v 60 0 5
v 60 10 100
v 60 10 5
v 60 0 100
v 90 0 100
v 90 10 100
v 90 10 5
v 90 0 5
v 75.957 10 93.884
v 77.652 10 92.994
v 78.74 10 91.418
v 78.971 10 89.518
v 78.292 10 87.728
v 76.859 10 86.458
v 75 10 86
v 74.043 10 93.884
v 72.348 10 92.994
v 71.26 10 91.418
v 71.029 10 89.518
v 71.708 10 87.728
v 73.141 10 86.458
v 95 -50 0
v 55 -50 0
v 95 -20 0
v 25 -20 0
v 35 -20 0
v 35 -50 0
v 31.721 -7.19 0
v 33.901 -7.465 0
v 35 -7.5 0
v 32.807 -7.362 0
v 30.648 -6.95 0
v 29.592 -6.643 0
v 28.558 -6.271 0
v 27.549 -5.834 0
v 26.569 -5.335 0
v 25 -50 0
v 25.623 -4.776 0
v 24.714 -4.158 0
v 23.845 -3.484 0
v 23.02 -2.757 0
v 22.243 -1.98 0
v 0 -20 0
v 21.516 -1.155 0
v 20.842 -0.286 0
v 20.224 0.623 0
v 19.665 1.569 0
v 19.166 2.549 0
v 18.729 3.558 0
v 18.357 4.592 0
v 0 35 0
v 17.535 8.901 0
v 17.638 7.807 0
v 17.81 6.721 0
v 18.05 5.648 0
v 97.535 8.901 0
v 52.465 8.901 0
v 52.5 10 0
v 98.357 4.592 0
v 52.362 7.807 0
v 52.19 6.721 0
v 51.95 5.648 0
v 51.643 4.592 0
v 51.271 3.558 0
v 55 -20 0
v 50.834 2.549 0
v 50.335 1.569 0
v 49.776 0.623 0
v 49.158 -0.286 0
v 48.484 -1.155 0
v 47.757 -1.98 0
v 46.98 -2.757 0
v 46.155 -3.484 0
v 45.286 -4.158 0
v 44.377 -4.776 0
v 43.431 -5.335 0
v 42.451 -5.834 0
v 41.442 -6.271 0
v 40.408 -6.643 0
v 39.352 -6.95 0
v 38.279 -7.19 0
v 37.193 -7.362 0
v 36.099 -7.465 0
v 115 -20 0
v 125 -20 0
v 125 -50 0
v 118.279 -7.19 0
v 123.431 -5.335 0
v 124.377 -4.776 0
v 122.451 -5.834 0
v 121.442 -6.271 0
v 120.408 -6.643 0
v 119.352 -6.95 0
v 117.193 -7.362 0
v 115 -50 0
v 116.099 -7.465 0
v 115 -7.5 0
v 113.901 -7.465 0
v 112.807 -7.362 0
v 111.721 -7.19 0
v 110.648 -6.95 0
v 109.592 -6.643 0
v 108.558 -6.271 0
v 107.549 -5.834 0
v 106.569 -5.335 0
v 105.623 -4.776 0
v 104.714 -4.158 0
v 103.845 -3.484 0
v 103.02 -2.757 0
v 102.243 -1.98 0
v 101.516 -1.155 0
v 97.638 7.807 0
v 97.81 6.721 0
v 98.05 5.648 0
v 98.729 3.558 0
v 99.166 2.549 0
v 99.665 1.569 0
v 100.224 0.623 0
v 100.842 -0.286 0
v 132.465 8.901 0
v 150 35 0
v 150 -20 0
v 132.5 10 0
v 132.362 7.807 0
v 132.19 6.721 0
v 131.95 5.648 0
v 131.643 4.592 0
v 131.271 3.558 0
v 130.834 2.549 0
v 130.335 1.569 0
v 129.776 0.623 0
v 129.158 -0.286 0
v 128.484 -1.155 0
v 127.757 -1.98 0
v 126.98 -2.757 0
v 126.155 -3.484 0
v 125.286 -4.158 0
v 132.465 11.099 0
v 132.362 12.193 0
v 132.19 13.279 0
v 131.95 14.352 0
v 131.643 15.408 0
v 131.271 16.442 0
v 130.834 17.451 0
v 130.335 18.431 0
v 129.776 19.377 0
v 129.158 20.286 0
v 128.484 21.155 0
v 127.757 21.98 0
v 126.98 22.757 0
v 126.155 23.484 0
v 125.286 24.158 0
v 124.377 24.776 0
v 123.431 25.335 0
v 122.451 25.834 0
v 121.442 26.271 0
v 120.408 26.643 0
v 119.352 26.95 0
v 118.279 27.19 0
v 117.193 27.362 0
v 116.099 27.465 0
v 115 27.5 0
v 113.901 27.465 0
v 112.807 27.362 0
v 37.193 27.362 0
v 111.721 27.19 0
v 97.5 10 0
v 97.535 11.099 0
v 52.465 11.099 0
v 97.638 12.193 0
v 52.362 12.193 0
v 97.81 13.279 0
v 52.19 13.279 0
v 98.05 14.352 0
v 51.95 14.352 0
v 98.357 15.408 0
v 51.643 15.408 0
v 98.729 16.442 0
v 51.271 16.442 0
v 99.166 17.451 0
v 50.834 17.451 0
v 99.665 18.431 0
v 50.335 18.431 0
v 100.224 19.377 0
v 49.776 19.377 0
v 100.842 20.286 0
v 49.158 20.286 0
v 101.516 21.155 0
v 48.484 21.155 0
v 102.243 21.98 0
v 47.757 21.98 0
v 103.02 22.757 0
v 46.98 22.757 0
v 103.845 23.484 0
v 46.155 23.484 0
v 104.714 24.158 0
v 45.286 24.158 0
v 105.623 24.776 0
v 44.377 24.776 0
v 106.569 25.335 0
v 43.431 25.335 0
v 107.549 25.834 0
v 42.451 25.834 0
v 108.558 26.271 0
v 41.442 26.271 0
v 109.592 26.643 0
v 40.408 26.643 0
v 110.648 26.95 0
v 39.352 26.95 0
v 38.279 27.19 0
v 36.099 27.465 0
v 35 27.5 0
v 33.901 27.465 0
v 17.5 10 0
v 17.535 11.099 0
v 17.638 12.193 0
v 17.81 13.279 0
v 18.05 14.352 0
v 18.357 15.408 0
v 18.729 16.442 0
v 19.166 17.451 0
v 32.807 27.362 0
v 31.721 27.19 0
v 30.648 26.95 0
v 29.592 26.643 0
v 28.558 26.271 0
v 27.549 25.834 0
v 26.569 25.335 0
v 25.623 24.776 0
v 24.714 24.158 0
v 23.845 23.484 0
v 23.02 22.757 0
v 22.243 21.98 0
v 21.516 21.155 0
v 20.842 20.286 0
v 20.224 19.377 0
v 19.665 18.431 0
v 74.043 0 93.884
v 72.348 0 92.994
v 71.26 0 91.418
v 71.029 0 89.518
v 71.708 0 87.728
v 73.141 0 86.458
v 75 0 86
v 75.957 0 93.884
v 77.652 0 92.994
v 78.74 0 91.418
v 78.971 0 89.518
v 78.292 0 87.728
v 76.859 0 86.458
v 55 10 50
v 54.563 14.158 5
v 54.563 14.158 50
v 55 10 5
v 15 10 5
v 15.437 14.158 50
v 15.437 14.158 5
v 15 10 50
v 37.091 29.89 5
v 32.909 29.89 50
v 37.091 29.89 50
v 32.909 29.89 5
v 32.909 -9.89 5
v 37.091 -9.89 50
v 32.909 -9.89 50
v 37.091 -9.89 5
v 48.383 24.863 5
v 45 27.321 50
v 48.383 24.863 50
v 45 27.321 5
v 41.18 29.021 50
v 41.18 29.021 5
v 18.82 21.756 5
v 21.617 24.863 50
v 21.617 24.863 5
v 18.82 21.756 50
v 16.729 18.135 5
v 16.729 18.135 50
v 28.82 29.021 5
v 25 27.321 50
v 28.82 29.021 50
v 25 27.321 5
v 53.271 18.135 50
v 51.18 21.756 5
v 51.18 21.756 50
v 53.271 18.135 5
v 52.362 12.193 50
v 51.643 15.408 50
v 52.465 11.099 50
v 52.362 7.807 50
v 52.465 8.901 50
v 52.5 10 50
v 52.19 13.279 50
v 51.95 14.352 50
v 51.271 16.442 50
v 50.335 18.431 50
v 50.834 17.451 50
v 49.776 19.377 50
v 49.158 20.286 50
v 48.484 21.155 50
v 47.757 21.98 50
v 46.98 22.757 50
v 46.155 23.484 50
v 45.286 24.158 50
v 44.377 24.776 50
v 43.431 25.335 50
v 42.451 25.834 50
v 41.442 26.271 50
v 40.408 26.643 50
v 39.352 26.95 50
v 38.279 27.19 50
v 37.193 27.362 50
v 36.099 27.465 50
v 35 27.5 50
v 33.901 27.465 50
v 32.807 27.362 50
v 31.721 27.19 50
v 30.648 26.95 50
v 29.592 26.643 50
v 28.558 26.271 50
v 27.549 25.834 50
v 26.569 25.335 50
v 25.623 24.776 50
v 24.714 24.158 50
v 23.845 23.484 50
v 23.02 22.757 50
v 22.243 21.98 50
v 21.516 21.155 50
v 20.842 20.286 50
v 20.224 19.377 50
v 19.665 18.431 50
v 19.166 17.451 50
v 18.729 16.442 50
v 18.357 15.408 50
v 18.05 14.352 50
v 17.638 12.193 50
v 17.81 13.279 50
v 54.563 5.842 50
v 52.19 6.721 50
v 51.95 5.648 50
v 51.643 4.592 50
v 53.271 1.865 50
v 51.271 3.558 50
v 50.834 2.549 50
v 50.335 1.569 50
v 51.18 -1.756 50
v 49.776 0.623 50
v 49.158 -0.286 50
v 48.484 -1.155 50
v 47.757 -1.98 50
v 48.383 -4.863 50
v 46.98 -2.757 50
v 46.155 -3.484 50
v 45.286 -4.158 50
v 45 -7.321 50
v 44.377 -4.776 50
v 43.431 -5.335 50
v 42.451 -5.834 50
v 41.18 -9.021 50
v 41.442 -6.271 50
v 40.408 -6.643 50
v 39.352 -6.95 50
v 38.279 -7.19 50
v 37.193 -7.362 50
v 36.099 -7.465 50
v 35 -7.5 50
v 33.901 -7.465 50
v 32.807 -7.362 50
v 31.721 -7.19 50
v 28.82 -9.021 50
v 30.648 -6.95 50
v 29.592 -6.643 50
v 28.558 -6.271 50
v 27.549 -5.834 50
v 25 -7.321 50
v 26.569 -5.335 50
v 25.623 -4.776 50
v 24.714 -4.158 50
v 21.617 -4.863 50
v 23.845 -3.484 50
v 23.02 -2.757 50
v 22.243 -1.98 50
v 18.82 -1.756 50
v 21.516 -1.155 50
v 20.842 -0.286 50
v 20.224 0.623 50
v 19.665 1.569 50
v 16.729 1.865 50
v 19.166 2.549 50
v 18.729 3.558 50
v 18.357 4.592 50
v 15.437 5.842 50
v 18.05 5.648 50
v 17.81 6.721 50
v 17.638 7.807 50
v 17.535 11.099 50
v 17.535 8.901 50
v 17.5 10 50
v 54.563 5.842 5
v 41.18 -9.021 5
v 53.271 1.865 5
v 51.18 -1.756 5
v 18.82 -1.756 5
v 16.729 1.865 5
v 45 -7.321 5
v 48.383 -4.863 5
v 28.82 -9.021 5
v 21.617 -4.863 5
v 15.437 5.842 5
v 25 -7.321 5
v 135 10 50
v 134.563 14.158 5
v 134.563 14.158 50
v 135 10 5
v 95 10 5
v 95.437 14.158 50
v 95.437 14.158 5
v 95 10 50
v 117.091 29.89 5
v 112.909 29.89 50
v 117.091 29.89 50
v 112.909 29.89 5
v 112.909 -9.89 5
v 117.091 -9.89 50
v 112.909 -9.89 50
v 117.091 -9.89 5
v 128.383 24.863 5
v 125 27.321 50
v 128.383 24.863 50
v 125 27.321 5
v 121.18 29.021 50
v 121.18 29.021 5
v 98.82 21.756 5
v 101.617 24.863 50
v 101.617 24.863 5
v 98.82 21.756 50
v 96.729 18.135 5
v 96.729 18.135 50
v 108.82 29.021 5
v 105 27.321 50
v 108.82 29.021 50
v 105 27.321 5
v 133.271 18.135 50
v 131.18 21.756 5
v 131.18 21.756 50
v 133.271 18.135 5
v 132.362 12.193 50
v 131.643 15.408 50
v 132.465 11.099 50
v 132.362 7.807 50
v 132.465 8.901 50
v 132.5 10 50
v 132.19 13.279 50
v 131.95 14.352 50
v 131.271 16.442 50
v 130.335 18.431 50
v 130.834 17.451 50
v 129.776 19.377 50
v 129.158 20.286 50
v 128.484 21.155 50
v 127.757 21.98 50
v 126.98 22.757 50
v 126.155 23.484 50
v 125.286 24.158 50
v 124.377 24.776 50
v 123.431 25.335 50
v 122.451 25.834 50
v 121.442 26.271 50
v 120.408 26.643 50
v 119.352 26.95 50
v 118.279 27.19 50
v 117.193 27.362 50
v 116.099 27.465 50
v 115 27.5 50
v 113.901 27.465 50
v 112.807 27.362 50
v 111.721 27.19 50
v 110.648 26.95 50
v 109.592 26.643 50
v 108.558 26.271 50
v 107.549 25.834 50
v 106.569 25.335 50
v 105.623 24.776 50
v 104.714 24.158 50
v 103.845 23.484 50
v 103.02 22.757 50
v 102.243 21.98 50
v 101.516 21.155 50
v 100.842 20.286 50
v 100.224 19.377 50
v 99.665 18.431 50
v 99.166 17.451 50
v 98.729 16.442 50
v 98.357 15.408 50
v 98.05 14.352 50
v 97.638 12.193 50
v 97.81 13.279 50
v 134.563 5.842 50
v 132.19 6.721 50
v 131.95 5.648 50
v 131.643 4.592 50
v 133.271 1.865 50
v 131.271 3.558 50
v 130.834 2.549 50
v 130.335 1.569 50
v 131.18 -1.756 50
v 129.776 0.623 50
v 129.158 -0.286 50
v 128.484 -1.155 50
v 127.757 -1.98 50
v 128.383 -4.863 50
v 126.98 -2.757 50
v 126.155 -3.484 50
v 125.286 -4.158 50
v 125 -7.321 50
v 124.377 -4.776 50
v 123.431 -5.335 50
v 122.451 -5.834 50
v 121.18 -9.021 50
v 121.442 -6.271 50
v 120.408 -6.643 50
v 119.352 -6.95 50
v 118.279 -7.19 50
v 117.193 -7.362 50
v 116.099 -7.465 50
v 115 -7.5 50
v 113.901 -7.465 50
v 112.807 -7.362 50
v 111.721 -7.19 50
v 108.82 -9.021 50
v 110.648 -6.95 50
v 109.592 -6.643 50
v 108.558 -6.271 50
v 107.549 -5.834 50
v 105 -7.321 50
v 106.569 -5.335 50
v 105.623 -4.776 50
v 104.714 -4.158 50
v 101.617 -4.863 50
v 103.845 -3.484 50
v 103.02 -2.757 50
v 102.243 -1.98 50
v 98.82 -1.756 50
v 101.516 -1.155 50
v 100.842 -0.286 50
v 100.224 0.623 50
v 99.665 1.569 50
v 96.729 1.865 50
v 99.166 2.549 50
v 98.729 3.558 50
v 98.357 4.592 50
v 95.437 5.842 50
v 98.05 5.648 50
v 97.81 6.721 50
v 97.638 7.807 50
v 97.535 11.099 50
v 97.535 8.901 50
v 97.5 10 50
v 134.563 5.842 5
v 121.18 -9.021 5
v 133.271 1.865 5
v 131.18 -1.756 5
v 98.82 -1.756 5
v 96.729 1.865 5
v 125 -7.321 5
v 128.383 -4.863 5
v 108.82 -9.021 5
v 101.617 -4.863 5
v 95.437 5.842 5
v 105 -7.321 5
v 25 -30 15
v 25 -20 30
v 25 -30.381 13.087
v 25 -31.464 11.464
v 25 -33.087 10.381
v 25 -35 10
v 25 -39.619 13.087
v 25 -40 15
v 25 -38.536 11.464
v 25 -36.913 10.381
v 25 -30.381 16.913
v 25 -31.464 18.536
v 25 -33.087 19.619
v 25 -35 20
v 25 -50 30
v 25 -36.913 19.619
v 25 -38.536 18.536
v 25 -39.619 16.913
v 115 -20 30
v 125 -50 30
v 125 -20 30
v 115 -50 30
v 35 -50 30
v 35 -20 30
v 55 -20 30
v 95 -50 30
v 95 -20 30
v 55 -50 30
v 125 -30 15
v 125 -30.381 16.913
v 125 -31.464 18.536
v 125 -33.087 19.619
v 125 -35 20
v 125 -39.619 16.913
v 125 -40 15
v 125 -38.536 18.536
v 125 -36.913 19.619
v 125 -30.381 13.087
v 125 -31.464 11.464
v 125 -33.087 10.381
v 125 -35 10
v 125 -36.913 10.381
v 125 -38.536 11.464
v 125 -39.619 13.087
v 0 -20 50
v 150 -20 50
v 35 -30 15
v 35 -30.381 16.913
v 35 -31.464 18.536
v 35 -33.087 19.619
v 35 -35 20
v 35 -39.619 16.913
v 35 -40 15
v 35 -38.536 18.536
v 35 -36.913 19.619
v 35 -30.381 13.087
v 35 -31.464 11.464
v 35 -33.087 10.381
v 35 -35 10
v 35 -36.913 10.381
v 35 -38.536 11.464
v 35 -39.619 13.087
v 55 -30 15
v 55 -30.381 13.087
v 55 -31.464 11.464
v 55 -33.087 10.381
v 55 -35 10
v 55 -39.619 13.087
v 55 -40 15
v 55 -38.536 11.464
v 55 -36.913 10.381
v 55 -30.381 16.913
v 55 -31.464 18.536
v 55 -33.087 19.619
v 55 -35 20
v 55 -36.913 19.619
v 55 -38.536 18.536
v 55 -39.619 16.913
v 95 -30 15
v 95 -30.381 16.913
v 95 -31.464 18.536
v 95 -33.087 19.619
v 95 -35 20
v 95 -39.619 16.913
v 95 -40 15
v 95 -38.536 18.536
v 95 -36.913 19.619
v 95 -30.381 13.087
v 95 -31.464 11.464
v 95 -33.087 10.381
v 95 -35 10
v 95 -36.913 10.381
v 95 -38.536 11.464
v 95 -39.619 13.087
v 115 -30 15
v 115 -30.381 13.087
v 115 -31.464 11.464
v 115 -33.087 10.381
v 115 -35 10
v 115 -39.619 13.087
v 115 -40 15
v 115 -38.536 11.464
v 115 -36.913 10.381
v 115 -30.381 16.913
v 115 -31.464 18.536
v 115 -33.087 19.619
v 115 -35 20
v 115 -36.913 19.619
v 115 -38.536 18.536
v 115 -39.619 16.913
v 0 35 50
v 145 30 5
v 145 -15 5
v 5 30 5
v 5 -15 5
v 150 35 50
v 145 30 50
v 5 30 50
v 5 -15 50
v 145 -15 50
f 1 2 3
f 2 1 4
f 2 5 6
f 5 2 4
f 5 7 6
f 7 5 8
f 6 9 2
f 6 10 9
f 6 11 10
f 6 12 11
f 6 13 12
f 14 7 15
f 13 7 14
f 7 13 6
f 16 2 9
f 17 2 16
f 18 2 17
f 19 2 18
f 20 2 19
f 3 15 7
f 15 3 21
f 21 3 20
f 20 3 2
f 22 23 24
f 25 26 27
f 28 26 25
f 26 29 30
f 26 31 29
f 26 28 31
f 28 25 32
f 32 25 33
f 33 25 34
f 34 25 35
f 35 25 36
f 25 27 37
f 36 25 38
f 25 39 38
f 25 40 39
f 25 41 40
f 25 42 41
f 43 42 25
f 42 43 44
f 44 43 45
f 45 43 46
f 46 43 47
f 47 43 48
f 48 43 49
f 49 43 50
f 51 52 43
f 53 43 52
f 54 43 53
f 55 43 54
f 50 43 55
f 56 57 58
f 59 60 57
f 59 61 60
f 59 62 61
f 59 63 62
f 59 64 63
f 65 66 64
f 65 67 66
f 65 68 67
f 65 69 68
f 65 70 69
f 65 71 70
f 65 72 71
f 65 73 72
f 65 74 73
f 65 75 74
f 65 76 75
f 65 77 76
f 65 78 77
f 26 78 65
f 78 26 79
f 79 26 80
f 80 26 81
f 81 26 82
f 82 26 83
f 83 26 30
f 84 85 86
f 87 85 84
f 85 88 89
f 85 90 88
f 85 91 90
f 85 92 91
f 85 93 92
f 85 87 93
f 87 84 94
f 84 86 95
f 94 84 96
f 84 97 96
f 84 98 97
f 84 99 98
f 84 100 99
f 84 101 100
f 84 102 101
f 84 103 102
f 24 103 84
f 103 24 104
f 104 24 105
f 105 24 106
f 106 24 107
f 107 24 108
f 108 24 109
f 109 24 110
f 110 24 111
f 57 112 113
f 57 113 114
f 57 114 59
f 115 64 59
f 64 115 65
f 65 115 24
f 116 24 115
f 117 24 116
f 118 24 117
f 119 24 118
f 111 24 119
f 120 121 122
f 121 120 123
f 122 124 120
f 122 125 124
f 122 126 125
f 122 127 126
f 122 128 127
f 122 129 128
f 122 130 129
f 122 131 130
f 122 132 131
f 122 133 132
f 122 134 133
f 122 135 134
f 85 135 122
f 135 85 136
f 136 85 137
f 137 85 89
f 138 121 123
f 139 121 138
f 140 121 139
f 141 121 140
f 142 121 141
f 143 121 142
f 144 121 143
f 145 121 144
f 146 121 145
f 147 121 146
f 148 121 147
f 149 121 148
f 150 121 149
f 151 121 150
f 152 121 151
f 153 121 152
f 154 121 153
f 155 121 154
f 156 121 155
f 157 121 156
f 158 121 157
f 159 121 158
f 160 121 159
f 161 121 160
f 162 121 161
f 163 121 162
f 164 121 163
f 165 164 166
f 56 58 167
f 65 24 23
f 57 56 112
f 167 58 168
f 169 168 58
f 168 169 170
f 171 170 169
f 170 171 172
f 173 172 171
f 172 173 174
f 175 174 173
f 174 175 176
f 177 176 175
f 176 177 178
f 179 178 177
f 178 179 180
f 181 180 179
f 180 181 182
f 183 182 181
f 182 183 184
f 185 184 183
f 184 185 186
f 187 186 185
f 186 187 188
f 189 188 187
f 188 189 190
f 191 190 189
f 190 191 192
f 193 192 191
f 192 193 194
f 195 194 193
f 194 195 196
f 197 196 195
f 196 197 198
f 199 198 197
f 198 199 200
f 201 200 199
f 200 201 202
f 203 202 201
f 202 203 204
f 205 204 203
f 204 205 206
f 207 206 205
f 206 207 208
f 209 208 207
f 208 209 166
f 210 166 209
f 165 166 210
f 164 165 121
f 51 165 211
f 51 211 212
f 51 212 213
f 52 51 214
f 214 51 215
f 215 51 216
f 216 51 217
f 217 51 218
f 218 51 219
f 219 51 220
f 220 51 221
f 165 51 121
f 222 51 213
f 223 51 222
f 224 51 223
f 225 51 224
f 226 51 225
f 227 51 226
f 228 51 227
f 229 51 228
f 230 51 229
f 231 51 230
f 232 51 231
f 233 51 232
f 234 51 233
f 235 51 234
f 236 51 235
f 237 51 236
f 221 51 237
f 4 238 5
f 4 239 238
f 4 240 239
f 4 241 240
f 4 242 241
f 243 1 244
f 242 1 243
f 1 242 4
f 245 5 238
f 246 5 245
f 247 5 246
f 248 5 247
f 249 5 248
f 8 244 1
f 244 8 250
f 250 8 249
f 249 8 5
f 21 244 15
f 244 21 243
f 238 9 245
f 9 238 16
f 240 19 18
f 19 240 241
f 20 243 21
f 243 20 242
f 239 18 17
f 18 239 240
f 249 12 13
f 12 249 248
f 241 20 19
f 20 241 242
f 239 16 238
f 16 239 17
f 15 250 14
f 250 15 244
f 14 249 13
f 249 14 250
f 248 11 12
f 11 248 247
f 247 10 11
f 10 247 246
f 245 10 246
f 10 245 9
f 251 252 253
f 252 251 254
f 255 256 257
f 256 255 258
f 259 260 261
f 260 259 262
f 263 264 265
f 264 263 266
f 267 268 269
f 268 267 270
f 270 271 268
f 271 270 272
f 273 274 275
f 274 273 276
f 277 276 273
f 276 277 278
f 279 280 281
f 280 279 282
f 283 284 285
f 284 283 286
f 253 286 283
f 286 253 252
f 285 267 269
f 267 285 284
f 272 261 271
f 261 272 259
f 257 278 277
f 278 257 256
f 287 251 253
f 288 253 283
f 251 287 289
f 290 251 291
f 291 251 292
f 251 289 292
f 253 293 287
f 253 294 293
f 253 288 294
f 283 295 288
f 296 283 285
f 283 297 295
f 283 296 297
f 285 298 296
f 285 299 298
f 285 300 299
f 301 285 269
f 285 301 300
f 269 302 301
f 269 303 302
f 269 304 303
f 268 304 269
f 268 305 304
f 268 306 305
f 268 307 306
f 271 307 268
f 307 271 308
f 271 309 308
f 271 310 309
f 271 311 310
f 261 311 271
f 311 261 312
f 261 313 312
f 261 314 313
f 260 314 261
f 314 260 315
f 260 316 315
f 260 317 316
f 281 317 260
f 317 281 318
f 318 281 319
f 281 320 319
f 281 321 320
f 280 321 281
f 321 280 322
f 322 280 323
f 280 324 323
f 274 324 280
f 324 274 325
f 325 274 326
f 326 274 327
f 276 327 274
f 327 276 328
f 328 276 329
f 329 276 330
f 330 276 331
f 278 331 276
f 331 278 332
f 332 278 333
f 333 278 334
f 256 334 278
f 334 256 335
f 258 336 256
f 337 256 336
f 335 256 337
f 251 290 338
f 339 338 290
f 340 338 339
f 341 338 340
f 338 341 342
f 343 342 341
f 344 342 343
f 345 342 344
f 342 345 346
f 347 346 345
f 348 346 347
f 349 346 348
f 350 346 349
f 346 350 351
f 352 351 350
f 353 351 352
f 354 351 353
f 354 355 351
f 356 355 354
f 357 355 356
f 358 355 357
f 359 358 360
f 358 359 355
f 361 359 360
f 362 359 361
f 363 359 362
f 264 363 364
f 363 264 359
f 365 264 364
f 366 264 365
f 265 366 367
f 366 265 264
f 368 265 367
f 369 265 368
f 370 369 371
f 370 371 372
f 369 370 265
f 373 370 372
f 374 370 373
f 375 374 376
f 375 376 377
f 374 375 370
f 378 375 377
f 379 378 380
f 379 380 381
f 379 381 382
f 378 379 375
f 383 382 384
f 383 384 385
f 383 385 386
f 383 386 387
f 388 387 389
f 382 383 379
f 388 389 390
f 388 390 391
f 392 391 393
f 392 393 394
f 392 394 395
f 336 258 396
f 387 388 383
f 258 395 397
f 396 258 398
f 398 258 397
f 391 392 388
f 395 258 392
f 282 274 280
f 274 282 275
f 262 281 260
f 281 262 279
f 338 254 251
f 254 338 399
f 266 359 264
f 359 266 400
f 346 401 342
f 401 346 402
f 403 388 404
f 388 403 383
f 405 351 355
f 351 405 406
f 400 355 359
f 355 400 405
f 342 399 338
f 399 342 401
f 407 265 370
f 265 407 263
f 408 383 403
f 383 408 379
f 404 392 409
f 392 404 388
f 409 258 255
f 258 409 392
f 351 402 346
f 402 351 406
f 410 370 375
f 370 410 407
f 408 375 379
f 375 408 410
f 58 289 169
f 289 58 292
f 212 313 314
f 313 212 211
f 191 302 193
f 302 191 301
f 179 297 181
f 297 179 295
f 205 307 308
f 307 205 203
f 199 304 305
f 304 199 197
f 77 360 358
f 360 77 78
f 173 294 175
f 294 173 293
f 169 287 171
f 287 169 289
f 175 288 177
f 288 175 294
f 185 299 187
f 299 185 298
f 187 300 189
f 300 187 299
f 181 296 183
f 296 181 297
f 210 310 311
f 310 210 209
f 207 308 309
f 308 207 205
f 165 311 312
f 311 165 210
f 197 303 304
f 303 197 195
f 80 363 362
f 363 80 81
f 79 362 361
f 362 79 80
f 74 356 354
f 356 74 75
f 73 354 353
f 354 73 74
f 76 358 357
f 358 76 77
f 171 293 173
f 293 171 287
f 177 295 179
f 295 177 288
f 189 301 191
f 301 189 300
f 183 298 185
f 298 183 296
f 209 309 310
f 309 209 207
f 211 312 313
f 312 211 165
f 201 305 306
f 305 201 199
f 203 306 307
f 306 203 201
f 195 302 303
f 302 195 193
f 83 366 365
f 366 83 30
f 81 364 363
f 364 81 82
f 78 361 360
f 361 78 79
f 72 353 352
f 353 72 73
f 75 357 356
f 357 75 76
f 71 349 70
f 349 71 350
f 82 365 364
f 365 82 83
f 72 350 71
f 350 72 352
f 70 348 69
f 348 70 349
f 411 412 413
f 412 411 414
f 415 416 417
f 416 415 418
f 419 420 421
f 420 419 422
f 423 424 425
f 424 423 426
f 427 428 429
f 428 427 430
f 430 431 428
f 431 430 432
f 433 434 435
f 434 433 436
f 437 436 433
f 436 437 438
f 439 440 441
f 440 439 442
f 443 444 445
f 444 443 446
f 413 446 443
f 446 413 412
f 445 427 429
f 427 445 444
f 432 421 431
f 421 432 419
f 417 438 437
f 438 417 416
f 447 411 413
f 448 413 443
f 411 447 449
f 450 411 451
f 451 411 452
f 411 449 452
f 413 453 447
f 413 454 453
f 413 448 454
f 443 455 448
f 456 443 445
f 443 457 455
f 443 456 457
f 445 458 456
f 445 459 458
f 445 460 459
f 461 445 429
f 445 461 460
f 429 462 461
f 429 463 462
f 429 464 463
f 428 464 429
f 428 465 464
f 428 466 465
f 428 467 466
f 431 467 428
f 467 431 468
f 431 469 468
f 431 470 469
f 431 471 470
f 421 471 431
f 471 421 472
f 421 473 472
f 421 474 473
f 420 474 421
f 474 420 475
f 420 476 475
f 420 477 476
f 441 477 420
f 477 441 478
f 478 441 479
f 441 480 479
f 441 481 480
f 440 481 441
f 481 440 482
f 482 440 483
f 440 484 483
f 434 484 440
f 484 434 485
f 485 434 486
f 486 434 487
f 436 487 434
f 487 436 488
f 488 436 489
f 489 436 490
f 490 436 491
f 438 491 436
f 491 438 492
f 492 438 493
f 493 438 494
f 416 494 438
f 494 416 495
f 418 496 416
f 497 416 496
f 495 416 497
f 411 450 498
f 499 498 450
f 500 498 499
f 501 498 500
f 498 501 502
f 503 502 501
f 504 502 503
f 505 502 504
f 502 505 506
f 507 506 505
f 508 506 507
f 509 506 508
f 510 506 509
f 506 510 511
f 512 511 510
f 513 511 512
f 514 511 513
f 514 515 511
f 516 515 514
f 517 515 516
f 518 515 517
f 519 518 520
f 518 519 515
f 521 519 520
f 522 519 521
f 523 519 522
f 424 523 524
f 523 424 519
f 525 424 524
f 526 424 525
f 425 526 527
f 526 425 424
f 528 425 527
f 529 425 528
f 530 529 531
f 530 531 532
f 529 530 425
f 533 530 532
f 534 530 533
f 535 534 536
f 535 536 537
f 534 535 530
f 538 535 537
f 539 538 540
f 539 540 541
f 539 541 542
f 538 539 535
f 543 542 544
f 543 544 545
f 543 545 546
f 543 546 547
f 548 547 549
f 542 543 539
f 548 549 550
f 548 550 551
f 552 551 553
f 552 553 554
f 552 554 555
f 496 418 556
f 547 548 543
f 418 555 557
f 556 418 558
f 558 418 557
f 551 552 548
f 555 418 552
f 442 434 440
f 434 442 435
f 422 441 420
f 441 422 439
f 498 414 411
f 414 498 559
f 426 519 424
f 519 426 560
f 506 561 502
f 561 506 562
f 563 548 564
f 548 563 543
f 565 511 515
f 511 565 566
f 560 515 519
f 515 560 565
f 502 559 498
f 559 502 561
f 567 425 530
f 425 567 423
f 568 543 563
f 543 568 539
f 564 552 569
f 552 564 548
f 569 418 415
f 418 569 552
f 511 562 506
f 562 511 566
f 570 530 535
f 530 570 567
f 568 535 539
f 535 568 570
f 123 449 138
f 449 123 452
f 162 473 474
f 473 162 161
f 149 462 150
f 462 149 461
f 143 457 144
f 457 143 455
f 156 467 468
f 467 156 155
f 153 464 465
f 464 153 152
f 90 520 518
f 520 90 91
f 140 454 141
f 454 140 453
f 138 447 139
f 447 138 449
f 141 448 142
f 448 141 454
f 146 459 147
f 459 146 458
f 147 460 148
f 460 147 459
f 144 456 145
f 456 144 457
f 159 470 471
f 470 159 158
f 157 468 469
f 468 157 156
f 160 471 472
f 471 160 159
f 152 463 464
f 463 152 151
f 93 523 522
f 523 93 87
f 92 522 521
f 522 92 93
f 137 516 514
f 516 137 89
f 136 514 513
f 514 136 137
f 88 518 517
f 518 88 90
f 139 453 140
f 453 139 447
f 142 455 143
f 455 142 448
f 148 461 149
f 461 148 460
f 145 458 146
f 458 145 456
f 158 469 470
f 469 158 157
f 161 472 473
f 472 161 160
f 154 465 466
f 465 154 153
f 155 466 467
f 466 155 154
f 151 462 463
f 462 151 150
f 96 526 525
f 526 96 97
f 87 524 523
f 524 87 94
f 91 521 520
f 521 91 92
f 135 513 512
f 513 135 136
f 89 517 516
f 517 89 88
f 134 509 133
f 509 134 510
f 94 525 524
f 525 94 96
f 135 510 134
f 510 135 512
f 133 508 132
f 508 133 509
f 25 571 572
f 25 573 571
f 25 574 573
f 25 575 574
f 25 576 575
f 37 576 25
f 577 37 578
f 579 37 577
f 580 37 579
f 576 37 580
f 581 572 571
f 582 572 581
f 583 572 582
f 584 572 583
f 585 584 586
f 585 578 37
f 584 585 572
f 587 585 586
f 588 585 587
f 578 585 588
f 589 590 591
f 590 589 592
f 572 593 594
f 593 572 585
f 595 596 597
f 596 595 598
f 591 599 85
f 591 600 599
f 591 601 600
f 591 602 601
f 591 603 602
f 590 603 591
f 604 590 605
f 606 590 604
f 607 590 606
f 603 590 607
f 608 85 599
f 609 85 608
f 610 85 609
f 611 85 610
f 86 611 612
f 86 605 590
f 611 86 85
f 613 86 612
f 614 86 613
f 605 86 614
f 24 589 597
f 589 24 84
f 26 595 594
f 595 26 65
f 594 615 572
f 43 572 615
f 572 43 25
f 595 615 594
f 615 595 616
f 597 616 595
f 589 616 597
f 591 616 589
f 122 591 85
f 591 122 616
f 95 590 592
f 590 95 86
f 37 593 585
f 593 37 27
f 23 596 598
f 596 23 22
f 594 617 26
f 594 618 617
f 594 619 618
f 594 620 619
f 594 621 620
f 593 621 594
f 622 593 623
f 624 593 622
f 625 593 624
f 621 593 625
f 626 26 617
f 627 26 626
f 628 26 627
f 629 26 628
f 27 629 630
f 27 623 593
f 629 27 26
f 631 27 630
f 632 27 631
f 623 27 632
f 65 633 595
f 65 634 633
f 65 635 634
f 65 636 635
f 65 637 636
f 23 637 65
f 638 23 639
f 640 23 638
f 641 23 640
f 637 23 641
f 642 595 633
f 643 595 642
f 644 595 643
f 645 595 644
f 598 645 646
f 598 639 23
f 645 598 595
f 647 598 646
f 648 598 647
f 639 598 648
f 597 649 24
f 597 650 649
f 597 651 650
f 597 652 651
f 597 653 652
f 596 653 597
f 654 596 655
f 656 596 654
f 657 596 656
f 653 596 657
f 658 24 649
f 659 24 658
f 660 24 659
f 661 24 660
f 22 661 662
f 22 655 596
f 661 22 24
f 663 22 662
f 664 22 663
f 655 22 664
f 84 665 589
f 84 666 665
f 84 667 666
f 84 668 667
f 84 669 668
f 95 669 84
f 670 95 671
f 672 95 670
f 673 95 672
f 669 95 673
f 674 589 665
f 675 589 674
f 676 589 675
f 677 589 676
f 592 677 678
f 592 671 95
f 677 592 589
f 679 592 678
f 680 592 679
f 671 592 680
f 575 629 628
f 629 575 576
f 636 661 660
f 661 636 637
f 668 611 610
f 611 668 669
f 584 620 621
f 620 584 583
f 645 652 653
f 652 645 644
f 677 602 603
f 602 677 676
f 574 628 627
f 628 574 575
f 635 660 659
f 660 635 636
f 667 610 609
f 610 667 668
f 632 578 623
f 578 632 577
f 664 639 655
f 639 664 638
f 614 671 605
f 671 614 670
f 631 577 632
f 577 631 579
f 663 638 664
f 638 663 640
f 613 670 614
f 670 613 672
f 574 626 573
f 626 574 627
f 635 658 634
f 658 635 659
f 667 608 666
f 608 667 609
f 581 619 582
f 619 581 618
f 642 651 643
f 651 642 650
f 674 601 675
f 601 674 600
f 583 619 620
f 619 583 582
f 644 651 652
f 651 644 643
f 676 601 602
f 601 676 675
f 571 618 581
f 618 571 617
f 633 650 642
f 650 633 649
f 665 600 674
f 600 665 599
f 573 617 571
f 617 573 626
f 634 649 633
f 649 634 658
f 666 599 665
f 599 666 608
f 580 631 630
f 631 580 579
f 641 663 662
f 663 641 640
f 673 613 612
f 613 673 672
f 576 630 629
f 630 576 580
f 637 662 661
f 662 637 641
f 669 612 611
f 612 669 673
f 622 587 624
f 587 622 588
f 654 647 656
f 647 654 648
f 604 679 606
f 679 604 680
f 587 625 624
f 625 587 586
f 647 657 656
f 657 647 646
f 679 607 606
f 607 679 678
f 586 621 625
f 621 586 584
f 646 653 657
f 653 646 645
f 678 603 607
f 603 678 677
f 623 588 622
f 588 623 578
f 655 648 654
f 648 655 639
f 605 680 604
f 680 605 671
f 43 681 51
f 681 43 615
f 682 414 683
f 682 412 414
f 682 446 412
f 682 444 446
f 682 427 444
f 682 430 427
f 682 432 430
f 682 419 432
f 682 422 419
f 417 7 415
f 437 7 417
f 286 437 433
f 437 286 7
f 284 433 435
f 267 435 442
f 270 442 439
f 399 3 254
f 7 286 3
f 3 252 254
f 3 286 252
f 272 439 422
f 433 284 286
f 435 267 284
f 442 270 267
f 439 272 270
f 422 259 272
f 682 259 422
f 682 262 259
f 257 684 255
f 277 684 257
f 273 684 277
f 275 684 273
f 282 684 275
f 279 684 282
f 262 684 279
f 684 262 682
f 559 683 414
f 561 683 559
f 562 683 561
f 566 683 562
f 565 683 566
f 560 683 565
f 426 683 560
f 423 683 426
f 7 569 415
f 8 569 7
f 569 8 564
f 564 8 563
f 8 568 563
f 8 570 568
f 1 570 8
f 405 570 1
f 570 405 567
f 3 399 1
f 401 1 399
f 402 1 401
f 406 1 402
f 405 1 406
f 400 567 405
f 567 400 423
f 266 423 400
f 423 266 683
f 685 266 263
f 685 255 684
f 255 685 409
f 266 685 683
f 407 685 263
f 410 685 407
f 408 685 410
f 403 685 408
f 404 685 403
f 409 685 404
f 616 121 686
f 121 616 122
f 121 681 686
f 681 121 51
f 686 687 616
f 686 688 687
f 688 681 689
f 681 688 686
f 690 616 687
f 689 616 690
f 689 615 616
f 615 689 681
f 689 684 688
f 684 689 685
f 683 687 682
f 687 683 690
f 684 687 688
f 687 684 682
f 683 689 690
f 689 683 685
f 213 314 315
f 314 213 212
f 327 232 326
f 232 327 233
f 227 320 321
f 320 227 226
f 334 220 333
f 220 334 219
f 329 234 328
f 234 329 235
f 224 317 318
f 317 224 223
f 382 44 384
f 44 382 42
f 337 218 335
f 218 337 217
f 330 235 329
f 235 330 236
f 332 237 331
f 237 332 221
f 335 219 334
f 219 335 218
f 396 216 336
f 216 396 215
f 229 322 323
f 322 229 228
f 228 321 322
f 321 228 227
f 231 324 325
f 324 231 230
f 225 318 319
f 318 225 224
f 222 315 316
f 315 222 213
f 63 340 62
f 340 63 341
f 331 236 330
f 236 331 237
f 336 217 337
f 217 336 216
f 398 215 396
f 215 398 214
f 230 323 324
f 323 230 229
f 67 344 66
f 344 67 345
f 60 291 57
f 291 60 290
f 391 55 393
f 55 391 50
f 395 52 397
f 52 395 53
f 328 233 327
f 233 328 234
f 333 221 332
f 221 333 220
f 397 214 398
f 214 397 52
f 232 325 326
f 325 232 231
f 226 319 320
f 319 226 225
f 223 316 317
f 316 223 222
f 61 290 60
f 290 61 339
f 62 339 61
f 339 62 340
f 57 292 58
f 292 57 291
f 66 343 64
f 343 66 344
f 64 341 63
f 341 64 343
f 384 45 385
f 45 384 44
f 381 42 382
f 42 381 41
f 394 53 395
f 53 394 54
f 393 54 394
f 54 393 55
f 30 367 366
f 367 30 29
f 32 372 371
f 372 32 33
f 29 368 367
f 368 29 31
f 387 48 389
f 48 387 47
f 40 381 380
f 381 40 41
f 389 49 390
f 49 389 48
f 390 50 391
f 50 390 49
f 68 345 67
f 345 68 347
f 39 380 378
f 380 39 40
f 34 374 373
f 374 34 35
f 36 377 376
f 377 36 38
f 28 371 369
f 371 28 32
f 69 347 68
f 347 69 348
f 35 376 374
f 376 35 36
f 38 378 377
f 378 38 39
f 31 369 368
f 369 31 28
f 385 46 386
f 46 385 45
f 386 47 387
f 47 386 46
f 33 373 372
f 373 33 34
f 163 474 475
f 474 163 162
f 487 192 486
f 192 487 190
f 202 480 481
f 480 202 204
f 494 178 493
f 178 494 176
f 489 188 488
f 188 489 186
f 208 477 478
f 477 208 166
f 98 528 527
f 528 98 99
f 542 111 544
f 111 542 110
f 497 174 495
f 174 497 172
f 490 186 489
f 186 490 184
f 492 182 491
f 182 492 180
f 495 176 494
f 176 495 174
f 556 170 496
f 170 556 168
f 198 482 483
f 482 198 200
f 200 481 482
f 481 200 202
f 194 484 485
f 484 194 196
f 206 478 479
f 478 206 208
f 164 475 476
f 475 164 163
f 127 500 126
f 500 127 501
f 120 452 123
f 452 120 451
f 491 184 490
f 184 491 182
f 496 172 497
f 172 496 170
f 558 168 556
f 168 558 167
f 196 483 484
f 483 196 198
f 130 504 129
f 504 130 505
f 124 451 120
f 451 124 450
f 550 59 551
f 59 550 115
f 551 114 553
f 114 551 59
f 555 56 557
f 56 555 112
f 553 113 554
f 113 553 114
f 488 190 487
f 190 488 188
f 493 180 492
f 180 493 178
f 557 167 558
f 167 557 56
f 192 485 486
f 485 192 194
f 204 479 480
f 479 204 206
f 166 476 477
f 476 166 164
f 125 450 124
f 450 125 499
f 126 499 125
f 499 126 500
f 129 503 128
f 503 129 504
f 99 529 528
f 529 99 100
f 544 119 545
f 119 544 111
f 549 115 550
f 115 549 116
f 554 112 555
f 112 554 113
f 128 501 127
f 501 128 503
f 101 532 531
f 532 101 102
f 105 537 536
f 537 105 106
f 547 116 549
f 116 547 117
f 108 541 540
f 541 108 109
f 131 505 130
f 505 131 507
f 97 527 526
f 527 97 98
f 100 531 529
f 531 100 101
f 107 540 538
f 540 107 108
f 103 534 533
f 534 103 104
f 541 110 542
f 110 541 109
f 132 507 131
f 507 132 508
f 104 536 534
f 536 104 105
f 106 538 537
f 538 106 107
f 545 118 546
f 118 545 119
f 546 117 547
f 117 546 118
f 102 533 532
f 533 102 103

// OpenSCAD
slider2();

module rodholder2(){
    difference(){
        cylinder(50, 20, 20);
        translate([0,0,-5]){
            cylinder(60, 17.5, 17.5, $fn=100);
        }
    }
}

module slider2(){
    difference(){
    slider();
    translate([35,10,-5]){
        cylinder(60, 17.5, 17.5, $fn=100);
    }
        translate([115,10,-5]){
        cylinder(60, 17.5, 17.5, $fn=100);
    }
    }
    }

module slider(){
    //floor
    translate([0,-20,0]){
        cube([150,55,5]);
    }
    
    //left wall
    translate([0,-20,0]){
        cube([5, 55, 50]);
    }
    
    //right wall
    translate([145,-20,0]){
        cube([5, 55, 50]);
    }
    
    //back wall
    translate([0,30,0]){
        cube([150, 5, 50]);
    }
    
    //front wall
    translate([0,-20,0]){
        cube([150, 5, 50]);
    }
    
    // trigger
    translate([60, 0,0]){
        
        difference(){
        cube([30,10,100]);
        translate([15,-20,90]){
            rotate([0,90,90]){
                cylinder(40,4,4);
            }
        }
    }
        
        }
        //rod sleeves
    translate([35,10,0]){
        rodholder2();
        }
        
    translate([115,10,0]){
        rodholder2();
        }
        
    //lever holder
    translate([25,-50,0]){
        difference(){
        cube([100, 30, 30]);
        translate([10, -5, -2]){
            cube([20, 35, 35]);
        }
        translate([70, -5, -2]){
            cube([20, 35, 35]);
        }
        translate([-5,15,15]){
            rotate([0,90,0]){
                cylinder(150, 5, 5);
            }
        }
        }
    }    
    
    
    }
